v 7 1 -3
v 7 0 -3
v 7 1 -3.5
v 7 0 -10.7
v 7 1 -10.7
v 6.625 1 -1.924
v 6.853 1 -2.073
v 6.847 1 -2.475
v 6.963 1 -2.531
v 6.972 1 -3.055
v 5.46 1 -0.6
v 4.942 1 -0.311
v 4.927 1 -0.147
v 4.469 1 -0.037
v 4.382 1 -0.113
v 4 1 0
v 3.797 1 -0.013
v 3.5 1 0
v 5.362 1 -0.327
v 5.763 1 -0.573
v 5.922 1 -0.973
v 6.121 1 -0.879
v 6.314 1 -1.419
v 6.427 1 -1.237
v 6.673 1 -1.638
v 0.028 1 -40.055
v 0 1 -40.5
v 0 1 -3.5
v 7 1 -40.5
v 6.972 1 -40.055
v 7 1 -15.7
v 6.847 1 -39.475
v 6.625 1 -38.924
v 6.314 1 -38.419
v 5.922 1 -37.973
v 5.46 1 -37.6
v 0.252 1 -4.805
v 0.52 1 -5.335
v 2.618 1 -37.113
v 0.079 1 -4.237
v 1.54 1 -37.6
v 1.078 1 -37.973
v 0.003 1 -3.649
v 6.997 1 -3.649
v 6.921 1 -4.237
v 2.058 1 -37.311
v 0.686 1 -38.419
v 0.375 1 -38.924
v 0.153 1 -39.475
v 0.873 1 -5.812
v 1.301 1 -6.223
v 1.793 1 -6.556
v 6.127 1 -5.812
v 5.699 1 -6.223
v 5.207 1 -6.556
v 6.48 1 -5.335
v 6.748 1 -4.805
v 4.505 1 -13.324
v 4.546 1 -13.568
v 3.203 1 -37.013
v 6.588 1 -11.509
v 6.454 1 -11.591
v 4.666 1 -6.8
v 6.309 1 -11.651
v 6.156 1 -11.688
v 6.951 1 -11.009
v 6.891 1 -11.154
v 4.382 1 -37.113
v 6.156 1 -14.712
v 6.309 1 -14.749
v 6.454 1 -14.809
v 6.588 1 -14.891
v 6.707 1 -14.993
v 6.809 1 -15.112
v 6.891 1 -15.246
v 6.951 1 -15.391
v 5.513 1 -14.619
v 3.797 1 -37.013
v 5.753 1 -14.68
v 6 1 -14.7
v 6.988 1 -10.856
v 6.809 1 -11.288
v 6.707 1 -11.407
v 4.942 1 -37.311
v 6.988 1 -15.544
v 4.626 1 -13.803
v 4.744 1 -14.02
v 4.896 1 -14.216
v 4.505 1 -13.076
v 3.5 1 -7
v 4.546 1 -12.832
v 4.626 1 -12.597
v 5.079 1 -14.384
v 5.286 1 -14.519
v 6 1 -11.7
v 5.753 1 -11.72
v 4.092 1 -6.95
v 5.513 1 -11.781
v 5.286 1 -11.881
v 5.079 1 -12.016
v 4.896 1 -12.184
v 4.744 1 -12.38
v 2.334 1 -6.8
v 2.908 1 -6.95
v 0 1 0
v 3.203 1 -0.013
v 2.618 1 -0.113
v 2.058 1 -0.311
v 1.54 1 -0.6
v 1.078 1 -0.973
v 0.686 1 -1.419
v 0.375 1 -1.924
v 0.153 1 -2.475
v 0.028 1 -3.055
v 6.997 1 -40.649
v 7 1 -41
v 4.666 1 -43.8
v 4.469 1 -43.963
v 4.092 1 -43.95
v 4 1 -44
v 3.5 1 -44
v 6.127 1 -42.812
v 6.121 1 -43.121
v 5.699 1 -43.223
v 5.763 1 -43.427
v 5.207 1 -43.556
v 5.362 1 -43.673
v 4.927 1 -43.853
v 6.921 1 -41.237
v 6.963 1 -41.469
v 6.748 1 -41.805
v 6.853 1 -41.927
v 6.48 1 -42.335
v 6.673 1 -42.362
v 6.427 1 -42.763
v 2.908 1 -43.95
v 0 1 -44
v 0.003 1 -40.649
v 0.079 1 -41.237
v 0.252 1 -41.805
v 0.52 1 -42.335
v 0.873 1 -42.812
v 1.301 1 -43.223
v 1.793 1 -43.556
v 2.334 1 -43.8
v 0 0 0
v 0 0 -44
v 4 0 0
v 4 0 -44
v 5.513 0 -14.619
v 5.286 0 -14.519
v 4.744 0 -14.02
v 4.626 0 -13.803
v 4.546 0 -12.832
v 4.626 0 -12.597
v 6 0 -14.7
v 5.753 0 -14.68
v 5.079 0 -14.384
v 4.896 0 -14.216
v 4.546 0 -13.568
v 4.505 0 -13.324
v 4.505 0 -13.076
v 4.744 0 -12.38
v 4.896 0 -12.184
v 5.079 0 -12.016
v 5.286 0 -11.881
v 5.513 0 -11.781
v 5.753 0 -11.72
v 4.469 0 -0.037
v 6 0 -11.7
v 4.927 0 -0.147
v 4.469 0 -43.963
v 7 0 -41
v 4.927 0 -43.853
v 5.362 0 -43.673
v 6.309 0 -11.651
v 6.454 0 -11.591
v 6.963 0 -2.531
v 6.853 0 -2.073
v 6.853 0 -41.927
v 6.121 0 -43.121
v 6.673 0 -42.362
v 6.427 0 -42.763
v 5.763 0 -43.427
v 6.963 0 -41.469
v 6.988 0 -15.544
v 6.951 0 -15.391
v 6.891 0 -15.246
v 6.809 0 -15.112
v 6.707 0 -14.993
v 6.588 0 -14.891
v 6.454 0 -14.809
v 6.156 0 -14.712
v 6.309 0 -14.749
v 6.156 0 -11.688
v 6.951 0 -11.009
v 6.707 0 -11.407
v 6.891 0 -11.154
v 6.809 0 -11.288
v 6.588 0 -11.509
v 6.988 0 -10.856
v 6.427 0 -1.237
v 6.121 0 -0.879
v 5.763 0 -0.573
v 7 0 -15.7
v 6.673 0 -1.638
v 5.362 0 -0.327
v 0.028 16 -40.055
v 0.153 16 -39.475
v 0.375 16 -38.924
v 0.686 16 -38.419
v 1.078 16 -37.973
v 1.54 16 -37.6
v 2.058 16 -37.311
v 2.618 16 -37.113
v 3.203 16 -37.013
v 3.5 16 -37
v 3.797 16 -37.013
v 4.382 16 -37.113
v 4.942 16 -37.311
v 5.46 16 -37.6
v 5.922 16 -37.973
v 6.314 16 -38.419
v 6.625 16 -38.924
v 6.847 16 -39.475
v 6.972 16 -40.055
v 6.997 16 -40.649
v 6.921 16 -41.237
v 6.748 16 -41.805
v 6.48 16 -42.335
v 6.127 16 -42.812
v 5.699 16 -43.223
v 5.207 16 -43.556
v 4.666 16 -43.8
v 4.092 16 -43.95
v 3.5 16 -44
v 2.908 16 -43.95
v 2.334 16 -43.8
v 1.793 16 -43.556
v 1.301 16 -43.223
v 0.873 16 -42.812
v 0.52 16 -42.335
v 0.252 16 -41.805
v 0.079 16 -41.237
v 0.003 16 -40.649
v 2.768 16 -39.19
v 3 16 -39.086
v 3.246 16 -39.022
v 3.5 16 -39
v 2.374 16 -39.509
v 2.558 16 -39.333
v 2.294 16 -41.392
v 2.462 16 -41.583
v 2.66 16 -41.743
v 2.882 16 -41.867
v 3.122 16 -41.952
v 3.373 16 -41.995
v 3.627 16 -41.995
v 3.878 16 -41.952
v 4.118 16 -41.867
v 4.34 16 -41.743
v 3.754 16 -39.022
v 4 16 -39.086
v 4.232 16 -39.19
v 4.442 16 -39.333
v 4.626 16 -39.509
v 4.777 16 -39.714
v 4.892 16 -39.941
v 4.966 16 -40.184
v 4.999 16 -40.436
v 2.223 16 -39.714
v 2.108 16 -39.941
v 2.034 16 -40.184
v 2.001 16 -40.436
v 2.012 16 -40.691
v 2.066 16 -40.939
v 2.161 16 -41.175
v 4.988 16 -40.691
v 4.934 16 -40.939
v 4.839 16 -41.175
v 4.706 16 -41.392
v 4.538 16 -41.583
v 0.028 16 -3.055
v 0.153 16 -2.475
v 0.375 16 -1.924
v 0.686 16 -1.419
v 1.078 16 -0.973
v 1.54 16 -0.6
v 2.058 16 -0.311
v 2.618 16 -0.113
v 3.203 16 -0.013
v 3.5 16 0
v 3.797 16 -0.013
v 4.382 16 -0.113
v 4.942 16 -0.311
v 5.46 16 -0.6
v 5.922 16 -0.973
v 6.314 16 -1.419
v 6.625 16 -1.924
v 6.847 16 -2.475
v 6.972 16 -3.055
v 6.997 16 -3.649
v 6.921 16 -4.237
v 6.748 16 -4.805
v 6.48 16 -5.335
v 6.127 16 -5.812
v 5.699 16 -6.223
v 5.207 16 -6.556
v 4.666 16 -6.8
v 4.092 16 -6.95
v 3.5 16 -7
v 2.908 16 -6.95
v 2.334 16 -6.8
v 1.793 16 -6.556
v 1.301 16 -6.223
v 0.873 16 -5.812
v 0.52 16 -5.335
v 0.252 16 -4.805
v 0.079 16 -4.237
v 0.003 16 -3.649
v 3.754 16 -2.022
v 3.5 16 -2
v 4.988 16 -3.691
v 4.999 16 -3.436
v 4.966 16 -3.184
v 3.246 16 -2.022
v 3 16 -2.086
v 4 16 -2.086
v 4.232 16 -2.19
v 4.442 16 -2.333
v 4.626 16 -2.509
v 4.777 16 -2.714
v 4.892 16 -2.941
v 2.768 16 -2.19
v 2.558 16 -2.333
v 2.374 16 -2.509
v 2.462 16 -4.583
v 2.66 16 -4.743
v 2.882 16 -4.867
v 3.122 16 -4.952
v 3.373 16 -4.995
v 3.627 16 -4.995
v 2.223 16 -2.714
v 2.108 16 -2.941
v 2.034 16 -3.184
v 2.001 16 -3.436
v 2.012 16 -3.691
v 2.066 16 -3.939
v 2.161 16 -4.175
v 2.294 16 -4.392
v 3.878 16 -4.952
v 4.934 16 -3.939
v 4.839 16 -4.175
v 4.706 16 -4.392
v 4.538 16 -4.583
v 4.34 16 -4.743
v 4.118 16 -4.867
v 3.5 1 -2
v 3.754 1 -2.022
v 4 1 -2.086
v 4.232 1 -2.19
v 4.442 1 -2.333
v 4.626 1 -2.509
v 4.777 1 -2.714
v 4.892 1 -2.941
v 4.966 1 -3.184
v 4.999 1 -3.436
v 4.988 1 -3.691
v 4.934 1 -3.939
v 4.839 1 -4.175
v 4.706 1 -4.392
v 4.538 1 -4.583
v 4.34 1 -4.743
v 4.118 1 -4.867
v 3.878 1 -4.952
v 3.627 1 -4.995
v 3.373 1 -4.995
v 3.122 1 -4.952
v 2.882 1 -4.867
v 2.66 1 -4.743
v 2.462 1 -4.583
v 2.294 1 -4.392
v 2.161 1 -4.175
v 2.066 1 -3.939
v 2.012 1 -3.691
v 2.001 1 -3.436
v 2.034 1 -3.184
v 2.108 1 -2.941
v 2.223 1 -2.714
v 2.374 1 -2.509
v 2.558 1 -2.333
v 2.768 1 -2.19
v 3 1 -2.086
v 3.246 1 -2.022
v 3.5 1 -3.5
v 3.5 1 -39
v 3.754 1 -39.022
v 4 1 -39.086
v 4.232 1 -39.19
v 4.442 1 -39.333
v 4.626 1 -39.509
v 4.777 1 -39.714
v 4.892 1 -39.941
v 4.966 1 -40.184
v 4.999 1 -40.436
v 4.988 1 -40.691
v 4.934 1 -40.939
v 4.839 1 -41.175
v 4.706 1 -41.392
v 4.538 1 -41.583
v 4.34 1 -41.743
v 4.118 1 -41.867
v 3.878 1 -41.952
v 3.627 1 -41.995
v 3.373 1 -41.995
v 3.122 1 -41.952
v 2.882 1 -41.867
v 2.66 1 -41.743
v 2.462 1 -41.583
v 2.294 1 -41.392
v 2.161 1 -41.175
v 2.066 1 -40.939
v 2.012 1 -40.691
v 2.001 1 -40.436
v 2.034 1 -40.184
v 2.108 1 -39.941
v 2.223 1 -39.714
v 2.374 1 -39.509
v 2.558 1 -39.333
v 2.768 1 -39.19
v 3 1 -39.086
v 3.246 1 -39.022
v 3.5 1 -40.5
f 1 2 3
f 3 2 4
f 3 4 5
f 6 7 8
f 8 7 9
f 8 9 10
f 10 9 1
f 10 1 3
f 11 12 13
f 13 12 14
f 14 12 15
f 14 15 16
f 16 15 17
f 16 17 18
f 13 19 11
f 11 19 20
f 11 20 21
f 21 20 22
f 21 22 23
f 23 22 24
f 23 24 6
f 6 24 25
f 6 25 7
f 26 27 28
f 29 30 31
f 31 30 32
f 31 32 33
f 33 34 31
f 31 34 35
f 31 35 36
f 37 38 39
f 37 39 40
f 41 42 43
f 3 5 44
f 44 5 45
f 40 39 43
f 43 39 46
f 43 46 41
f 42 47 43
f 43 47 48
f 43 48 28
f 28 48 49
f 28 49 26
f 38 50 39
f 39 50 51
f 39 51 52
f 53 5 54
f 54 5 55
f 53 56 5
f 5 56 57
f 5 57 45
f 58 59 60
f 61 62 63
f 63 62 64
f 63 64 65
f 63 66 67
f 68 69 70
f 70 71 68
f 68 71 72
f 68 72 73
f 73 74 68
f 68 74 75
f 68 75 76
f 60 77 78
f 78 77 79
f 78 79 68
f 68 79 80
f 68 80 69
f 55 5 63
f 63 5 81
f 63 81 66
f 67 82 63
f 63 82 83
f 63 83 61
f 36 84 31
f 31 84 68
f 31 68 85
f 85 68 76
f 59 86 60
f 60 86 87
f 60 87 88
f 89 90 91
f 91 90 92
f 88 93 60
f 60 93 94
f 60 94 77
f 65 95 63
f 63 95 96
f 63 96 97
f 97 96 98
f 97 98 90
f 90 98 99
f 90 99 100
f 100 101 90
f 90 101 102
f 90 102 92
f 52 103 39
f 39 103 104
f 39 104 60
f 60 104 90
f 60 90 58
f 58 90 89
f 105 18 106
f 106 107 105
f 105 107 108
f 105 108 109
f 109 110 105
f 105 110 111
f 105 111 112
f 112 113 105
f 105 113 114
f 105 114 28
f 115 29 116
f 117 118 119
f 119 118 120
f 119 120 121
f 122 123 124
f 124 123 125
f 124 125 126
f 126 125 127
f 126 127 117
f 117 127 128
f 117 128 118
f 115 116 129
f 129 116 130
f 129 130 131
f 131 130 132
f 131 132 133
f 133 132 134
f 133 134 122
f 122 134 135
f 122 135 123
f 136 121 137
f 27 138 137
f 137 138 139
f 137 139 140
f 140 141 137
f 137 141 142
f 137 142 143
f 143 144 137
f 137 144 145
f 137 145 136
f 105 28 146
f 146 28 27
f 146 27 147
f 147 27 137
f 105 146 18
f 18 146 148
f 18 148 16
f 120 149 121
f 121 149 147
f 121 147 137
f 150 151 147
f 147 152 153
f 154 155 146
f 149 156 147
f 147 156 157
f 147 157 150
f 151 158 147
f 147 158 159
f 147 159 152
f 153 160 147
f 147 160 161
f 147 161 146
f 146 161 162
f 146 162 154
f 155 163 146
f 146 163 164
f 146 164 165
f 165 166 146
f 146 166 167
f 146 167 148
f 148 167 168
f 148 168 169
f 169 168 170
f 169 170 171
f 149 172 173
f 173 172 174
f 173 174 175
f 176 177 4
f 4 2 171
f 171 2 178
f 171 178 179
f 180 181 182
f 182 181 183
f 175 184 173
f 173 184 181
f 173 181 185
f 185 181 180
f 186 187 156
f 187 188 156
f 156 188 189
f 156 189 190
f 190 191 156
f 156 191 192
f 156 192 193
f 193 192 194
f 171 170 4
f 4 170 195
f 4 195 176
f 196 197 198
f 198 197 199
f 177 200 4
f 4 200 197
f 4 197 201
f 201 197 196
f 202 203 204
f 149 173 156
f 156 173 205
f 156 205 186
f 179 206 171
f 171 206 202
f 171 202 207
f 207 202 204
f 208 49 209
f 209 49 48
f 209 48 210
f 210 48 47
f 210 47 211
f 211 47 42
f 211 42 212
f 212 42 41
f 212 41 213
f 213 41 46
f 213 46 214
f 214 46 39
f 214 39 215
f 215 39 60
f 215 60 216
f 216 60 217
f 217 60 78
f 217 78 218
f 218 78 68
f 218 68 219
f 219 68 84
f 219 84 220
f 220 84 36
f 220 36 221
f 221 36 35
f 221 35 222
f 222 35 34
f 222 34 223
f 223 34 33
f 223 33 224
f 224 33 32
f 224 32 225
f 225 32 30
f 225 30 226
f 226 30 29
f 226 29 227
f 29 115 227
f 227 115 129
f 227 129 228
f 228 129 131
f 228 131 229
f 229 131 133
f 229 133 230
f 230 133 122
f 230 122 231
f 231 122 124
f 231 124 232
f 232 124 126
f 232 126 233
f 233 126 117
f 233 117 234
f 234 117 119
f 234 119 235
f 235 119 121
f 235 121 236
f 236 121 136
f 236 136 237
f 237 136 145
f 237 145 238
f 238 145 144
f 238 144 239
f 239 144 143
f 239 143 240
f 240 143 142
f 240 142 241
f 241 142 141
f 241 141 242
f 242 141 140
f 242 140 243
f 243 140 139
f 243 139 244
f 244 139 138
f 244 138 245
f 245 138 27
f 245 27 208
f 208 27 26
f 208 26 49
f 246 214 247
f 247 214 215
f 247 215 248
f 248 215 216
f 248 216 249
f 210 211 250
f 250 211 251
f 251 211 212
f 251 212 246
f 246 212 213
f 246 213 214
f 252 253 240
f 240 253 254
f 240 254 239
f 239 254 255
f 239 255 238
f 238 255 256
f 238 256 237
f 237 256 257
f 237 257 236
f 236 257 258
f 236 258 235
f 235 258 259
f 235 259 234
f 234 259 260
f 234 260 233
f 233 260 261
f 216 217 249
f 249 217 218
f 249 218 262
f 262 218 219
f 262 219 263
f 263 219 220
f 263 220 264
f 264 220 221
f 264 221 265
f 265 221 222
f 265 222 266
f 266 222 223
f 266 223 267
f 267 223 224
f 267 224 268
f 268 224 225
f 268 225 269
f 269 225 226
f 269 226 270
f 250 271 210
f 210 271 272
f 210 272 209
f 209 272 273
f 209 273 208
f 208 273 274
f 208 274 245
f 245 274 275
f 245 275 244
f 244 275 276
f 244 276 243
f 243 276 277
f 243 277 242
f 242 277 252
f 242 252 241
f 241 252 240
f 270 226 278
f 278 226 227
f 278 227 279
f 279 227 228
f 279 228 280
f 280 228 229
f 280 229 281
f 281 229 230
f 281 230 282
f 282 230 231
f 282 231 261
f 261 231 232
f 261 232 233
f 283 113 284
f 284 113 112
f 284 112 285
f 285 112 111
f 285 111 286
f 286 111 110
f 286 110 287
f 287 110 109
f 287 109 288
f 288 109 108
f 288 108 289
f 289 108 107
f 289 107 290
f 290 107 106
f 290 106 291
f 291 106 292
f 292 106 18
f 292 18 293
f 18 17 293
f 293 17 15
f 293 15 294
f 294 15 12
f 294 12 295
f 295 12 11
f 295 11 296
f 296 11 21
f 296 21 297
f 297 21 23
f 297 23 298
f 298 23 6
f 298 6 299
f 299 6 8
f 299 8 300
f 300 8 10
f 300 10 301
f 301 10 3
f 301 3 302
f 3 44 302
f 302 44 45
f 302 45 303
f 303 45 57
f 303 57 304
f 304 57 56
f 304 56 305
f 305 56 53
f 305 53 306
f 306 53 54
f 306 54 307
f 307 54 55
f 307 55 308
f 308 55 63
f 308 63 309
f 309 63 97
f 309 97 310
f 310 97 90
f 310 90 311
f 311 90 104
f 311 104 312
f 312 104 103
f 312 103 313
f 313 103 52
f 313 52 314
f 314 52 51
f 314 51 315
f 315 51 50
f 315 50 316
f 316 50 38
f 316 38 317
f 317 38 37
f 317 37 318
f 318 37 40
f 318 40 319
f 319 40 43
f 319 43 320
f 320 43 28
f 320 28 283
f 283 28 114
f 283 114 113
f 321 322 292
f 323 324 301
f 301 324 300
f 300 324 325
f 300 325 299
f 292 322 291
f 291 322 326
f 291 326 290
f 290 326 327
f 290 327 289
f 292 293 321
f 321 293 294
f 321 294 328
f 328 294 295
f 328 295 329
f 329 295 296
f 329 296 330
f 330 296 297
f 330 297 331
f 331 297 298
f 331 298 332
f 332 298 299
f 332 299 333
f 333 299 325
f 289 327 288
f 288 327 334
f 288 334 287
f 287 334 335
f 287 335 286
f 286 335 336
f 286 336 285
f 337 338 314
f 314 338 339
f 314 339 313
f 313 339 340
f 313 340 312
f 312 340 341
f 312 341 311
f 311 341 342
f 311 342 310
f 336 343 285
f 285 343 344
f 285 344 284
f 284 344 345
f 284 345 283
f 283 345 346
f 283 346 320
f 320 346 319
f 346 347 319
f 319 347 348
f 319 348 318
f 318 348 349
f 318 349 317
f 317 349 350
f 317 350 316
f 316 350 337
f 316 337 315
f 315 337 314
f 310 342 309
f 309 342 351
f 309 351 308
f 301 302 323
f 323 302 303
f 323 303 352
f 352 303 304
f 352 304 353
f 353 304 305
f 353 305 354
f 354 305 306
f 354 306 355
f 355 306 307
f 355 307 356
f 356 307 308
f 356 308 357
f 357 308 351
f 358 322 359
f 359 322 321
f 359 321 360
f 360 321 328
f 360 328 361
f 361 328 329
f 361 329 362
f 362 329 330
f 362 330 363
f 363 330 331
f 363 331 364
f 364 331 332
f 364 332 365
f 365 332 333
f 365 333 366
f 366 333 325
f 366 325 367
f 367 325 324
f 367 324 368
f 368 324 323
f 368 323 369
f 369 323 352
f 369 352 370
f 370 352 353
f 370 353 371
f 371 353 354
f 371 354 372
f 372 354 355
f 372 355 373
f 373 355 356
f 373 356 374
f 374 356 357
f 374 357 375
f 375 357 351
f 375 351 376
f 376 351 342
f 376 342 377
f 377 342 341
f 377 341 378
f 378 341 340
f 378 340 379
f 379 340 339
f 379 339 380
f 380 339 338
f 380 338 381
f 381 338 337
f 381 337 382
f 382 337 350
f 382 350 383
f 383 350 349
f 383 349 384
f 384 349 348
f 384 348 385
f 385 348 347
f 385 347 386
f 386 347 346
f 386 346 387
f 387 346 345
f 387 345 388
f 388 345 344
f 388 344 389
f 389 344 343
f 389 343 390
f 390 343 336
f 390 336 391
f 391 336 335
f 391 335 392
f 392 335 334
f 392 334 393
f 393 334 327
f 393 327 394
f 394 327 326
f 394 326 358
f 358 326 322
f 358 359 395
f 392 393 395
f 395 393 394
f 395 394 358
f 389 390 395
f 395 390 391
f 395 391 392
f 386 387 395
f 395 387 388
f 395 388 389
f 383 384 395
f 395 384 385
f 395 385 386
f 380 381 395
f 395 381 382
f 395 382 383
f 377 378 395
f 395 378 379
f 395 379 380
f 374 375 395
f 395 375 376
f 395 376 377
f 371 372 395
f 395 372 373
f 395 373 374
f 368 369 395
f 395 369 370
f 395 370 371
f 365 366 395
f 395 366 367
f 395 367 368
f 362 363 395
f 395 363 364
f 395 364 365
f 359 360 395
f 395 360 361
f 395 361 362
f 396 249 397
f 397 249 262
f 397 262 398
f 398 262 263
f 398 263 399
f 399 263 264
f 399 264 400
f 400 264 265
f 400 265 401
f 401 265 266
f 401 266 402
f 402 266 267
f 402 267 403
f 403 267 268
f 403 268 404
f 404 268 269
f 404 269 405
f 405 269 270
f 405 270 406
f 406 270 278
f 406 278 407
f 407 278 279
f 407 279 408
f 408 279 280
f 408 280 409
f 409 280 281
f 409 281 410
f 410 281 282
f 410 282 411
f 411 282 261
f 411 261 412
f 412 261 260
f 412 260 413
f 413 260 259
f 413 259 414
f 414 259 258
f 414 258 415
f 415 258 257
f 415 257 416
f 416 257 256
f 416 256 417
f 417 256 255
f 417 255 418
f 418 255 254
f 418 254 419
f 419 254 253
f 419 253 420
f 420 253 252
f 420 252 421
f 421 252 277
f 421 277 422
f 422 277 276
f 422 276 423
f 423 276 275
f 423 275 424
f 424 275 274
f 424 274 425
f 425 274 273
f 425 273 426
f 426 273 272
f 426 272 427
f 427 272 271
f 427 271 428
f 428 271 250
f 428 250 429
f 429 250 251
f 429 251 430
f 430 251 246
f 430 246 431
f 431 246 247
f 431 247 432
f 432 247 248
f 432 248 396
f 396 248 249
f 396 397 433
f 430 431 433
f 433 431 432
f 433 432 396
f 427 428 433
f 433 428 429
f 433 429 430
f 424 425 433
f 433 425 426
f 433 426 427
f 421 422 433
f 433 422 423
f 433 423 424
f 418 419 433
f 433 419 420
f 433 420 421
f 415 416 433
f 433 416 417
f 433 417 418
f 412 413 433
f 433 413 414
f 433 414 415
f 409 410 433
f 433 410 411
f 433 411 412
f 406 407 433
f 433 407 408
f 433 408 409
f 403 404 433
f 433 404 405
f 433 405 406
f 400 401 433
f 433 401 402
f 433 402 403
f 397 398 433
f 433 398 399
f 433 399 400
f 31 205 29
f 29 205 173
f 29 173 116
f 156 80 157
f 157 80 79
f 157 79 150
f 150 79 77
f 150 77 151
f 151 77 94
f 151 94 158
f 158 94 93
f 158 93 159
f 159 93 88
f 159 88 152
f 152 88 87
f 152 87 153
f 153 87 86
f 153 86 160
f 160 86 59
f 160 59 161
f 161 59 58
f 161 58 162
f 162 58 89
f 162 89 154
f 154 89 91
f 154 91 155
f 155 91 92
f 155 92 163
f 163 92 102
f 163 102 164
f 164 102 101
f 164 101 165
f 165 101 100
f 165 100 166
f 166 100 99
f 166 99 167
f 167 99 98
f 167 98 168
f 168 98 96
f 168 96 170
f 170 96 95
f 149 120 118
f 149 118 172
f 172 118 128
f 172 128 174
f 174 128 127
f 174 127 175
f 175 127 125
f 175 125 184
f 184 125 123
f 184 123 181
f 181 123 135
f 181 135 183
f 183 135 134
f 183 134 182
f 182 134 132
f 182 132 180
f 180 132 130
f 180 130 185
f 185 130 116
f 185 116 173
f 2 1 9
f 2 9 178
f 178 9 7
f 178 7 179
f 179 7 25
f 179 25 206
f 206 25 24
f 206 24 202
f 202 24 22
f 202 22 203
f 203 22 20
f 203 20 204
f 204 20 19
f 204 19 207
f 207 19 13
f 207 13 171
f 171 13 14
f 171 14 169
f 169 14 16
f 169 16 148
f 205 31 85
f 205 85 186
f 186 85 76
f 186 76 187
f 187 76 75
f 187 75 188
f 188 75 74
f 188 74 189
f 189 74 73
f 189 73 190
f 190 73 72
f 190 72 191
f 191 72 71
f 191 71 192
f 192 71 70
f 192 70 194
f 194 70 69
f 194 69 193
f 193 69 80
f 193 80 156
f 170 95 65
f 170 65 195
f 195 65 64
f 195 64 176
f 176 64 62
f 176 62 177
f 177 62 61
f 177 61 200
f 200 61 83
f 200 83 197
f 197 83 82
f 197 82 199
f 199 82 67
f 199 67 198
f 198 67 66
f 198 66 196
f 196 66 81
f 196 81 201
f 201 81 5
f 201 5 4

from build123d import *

# Parameters (mm, degrees)
SKETCH1_W               = 44
SKETCH1_H               = 44
BOSS_EXTRUDE1_DEPTH     = 1
SKETCH2_R               = 3.5
BOSS_EXTRUDE2_DEPTH     = 15
SKETCH3_R               = 1.5
CUT_EXTRUDE1_DEPTH      = 15
CUT_EXTRUDE2_DEPTH      = 65.007812023
CUT_EXTRUDE2_DEPTH_BACK = 65.007812023
SKETCH4_W               = 37
SKETCH4_H               = 44
SKETCH5_R               = 1.5
CUT_EXTRUDE3_DEPTH      = 10
FILLET1_R               = 3
FILLET2_R               = 1


with BuildPart() as part:
    # Sketch1 → Boss-Extrude1 (new body)
    with BuildSketch(Plane(origin=(0, 0, 0), x_dir=(1, 0, 0), z_dir=(0, 1, 0))):
        with Locations((22, 22)):
            Rectangle(SKETCH1_W, SKETCH1_H)
    extrude(amount=BOSS_EXTRUDE1_DEPTH)

    # Sketch2 → Boss-Extrude2 (add)
    with BuildSketch(Plane(origin=(0, 1, 0), x_dir=(1, 0, 0), z_dir=(0, 1, 0))):
        with Locations(Location((3.5, 40.5, 0), (0, 0, 90))):
            Circle(SKETCH2_R)
        with Locations(Location((40.5, 40.5, 0), (0, 0, 90))):
            Circle(SKETCH2_R)
        with Locations(Location((40.5, 3.5, 0), (0, 0, 270))):
            Circle(SKETCH2_R)
        with Locations(Location((3.5, 3.5, 0), (0, 0, 270))):
            Circle(SKETCH2_R)
    extrude(amount=BOSS_EXTRUDE2_DEPTH)

    # Sketch3 → Cut-Extrude1 (cut)
    with BuildSketch(Plane(origin=(0, 16, 0), x_dir=(1, 0, 0), z_dir=(0, 1, 0))):
        with Locations(Location((3.5, 40.5, 0), (0, 0, 270))):
            Circle(SKETCH3_R)
        with Locations(Location((40.5, 40.5, 0), (0, 0, 270))):
            Circle(SKETCH3_R)
        with Locations(Location((40.5, 3.5, 0), (0, 0, 270))):
            Circle(SKETCH3_R)
        with Locations(Location((3.5, 3.5, 0), (0, 0, 270))):
            Circle(SKETCH3_R)
    extrude(amount=-CUT_EXTRUDE1_DEPTH, mode=Mode.SUBTRACT)

    # Sketch4 → Cut-Extrude2 (cut, two sides: drawn at the far end of the back side and taken through both)
    with BuildSketch(Plane(origin=(0, 1, 0), x_dir=(1, 0, 0), z_dir=(0, 1, 0)).offset(-CUT_EXTRUDE2_DEPTH_BACK)):
        with Locations((25.5, 22)):
            Rectangle(SKETCH4_W, SKETCH4_H)
    extrude(amount=CUT_EXTRUDE2_DEPTH + CUT_EXTRUDE2_DEPTH_BACK, mode=Mode.SUBTRACT)

    # Sketch5 → Cut-Extrude3 (cut)
    with BuildSketch(Plane(origin=(0, 1, 0), x_dir=(1, 0, 0), z_dir=(0, 1, 0))):
        with Locations((6, 13.2)):
            Circle(SKETCH5_R)
    extrude(amount=-CUT_EXTRUDE3_DEPTH, mode=Mode.SUBTRACT)

    # Fillet1
    fillet1_edges = [part.edges().sort_by_distance(p)[0] for p in [
        (7, 0.5, -44),
        (7, 0.5, 0),
    ]]
    fillet(fillet1_edges, radius=FILLET1_R)

    # Fillet2
    fillet2_edges = [part.edges().sort_by_distance(p)[0] for p in [
        (7, 0.5, -14.318033989),
        (7, 0.5, -12.081966011),
    ]]
    fillet(fillet2_edges, radius=FILLET2_R)


solid = part.part
